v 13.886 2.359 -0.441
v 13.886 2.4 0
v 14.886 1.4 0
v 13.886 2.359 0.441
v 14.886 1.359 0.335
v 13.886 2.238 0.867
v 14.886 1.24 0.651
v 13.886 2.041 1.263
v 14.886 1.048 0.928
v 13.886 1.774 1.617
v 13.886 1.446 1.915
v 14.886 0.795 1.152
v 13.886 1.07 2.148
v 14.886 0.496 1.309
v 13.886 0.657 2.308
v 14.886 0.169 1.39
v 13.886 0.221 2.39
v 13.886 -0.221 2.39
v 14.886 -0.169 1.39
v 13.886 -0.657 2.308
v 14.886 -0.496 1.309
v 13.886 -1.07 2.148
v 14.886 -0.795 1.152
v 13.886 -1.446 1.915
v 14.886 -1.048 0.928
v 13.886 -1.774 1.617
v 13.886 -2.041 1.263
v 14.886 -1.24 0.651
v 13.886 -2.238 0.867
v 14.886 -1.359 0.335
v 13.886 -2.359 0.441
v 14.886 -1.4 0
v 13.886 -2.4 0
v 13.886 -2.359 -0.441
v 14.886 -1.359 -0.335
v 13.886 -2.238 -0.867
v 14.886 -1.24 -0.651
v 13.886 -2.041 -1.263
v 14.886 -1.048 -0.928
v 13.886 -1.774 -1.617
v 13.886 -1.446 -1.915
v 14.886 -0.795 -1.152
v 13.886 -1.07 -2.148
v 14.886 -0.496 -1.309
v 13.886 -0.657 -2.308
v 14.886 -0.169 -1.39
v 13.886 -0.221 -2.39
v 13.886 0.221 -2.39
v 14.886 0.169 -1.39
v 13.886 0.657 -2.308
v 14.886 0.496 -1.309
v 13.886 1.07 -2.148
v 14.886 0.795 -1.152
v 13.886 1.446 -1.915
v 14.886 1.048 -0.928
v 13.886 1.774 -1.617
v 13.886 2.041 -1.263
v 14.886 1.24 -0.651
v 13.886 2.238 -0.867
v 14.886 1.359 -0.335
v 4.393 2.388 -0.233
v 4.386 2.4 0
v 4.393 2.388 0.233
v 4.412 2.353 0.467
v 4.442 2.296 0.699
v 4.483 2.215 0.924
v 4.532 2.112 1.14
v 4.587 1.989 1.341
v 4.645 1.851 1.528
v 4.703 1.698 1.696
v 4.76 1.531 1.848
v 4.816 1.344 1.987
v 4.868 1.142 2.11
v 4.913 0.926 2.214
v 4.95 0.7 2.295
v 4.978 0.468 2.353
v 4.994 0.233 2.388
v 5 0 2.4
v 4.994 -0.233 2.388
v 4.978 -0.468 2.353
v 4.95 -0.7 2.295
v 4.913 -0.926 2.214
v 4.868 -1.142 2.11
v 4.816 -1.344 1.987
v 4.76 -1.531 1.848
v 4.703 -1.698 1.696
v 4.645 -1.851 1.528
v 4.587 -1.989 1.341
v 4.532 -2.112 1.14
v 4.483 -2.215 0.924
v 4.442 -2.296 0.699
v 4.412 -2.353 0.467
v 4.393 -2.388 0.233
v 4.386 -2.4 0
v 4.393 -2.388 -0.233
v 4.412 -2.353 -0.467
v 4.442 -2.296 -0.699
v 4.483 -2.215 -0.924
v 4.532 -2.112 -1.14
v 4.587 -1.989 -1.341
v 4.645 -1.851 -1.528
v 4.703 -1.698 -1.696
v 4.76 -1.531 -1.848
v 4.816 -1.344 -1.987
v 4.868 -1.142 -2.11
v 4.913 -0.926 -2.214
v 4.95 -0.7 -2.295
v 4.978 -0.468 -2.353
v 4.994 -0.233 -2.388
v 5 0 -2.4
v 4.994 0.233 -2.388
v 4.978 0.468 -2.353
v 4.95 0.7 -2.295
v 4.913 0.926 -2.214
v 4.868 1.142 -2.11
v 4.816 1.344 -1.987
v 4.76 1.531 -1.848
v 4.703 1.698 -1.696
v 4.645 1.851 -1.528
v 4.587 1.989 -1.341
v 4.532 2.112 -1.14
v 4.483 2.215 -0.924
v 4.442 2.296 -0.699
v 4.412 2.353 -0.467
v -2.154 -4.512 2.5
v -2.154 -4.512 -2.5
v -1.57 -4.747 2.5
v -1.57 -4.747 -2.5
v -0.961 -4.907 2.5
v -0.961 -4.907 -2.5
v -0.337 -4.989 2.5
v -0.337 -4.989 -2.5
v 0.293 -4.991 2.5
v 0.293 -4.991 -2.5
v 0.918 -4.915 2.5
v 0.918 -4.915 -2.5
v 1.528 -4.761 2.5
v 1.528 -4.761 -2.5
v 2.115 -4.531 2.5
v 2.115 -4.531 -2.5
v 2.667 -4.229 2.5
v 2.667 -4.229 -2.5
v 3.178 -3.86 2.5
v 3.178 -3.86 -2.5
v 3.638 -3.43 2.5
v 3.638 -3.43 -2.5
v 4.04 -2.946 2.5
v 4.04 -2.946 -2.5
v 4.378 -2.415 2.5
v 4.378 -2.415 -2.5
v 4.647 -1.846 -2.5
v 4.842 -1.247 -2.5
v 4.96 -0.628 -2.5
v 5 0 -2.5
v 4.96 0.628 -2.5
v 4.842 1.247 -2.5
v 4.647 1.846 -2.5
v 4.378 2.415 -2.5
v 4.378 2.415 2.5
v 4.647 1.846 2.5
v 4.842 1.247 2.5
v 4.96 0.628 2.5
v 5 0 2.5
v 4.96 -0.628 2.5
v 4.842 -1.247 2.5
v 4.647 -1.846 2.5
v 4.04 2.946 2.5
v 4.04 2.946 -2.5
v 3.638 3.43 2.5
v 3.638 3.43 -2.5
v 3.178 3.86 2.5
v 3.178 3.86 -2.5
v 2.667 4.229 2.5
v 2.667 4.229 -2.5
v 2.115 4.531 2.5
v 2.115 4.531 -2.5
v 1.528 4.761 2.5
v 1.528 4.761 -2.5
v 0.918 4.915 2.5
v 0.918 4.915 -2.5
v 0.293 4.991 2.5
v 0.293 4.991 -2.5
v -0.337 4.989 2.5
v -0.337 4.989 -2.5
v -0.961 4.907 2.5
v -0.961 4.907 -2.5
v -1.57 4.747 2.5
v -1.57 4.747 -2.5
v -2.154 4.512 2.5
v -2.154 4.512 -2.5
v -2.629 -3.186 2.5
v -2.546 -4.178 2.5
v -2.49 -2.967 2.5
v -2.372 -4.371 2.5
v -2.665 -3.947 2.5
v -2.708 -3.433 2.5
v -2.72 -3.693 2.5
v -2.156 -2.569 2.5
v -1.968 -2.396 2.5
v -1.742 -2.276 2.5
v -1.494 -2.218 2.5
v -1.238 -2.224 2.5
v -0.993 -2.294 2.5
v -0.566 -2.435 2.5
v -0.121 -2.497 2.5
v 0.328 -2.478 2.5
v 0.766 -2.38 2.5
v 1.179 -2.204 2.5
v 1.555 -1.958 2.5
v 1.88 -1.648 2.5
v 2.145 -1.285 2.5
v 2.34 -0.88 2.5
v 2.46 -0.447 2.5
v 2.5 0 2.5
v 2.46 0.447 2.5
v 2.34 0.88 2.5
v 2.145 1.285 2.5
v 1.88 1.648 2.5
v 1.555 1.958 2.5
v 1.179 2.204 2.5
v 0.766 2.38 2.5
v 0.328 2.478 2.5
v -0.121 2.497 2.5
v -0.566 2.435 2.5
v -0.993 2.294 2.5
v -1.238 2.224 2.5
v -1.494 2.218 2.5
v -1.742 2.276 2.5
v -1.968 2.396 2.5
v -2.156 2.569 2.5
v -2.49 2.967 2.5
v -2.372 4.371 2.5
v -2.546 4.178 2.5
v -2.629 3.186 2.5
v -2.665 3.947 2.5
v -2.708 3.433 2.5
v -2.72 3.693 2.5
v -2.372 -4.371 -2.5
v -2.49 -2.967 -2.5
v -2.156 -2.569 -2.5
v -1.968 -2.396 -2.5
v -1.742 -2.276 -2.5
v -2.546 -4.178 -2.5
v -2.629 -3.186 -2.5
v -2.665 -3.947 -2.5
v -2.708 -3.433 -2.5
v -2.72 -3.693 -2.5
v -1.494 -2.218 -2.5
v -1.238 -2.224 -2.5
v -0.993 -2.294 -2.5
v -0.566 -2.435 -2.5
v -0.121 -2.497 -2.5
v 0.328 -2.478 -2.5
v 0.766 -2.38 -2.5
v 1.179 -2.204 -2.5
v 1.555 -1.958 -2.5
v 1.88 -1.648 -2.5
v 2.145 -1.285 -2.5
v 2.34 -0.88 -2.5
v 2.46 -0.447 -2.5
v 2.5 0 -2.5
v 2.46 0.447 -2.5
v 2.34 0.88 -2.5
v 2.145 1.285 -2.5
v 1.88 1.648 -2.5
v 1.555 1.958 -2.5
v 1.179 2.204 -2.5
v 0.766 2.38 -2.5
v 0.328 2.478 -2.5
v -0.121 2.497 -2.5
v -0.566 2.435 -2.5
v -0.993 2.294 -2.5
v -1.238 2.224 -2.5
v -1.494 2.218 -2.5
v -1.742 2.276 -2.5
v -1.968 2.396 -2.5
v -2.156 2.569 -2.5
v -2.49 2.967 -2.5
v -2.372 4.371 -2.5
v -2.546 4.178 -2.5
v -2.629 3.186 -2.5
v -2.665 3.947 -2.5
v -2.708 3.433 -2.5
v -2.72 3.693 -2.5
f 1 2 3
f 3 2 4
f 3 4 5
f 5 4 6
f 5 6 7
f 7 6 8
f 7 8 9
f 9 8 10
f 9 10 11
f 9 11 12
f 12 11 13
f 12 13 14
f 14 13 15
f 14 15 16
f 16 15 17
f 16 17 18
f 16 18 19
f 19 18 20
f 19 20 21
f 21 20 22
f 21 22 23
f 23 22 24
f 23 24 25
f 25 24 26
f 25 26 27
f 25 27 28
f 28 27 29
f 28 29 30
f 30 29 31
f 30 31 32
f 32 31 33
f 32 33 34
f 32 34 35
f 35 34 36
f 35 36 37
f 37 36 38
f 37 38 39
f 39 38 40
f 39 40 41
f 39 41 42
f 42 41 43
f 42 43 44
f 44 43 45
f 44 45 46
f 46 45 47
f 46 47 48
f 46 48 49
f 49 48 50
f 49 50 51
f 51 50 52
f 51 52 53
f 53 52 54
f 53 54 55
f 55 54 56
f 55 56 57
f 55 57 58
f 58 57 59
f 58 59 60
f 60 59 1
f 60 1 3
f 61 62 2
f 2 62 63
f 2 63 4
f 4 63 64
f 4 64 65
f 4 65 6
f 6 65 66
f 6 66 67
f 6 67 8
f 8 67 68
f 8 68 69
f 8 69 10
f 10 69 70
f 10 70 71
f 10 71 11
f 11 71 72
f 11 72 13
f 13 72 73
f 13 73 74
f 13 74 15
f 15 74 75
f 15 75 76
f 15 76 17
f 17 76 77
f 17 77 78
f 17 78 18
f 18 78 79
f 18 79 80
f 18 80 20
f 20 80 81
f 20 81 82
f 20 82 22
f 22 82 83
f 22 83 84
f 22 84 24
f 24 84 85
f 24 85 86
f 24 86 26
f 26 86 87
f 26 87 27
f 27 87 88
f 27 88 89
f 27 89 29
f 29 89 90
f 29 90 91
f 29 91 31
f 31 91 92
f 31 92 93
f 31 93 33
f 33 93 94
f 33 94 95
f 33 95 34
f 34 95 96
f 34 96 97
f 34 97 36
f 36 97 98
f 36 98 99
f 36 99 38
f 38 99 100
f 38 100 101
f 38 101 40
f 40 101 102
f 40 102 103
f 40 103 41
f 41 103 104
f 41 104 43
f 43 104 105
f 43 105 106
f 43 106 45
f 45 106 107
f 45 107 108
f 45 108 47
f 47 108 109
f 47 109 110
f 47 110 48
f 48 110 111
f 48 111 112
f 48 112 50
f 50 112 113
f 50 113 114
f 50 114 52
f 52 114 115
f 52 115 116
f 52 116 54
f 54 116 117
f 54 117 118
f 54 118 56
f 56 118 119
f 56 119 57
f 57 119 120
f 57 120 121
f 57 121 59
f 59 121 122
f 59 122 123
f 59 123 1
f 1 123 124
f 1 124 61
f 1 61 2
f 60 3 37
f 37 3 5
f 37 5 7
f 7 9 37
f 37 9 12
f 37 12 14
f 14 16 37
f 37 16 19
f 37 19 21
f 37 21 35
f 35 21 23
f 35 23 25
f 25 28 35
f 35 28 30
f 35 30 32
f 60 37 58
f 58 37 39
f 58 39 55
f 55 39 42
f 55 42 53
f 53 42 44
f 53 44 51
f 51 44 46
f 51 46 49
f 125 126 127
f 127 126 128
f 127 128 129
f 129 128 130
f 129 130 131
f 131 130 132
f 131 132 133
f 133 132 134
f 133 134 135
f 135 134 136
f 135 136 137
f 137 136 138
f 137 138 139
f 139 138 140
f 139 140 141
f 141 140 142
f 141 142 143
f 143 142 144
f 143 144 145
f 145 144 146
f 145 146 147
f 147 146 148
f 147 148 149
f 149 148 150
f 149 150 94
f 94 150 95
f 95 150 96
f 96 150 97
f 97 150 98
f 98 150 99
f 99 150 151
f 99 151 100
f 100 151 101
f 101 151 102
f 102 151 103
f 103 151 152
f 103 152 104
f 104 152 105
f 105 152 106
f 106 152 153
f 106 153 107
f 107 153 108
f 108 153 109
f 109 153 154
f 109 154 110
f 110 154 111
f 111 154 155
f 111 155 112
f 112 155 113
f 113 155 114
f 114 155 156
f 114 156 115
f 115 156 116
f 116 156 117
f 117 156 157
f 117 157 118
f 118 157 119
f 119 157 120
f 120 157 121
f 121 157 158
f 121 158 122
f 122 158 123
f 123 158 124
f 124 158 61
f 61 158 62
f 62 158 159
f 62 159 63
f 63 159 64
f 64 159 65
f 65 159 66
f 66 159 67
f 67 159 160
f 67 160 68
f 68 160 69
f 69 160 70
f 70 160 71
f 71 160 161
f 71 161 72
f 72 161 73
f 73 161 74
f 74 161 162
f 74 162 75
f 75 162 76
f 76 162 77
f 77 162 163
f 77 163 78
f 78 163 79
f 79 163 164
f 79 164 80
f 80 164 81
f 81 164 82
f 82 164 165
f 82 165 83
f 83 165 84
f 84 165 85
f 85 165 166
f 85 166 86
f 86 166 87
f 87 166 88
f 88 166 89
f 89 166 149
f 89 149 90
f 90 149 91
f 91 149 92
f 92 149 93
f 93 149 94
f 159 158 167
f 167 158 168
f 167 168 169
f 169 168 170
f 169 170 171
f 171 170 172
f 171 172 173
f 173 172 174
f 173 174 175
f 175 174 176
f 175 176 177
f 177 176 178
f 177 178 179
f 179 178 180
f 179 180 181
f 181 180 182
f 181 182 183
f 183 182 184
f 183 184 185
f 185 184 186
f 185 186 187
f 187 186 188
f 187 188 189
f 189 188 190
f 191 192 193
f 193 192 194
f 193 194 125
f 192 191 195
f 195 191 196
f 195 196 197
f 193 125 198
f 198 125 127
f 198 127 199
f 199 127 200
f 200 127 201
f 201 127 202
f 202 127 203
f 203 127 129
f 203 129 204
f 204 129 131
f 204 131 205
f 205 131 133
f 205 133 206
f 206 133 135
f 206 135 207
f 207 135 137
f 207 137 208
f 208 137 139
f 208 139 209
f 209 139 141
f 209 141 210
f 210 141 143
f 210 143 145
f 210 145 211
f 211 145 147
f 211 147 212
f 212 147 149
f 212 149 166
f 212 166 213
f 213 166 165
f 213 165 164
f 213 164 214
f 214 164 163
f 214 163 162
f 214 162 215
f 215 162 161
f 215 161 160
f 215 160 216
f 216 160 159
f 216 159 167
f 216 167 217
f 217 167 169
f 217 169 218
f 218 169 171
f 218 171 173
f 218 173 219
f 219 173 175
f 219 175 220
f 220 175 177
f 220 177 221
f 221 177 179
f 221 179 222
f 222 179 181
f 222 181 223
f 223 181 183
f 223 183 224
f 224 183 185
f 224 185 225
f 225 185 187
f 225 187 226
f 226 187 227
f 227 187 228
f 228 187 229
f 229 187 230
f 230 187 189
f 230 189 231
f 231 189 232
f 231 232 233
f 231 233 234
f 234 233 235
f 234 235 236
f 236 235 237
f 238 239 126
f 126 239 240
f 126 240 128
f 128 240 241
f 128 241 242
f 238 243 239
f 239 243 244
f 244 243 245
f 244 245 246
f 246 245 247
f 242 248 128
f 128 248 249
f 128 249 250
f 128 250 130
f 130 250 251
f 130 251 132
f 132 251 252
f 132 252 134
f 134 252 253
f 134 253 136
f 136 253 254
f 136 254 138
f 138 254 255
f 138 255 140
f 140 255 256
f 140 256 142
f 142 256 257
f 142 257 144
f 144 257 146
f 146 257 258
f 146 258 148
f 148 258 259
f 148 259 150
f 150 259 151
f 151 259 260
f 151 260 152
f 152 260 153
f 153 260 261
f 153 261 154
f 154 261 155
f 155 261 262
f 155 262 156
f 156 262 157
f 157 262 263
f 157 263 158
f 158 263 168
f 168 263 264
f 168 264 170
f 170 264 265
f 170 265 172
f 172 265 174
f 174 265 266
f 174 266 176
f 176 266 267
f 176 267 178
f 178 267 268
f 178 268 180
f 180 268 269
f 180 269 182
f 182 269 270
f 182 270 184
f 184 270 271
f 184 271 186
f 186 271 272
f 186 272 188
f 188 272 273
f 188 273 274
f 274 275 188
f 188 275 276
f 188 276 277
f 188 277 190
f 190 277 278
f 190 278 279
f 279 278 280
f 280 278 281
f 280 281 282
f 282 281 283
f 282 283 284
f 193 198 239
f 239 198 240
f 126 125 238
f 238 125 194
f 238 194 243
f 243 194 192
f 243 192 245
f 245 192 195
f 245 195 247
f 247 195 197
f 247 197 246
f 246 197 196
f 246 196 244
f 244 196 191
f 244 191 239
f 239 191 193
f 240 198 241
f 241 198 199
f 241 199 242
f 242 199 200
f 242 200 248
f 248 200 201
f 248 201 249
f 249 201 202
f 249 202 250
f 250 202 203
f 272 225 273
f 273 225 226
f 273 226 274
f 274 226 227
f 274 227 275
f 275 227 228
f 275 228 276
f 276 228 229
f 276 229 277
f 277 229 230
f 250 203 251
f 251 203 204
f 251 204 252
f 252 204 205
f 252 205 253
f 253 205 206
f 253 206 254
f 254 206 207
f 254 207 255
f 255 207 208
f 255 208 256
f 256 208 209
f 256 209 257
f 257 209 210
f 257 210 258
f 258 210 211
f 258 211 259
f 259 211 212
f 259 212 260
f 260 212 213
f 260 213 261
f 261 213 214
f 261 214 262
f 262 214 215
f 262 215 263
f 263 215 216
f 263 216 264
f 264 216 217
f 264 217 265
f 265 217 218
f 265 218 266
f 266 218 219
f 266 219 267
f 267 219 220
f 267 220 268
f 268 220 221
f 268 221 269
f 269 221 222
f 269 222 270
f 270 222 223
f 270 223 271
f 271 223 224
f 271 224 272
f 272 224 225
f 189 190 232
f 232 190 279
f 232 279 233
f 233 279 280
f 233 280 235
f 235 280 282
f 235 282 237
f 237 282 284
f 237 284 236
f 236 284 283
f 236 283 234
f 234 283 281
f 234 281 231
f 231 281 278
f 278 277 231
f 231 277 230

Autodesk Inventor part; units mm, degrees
ref_plane "YZ Plane" through (0, 0, 0) normal (1, 0, 0) x (0, 1, 0)
ref_plane "XZ Plane" through (0, 0, 0) normal (0, 1, 0) x (-1, 0, 0)
ref_plane "XY Plane" through (0, 0, 0) normal (0, 0, 1) x (1, 0, 0)
sketch "Sketch1" plane through (0, 0, 0) normal (0, 0, 1) x (1, 0, 0)
  circle A0 centre (0, 0) radius 5
  circle A1 centre (0, 0) radius 2.5
  line L0 (0, 0) -> (-5, 0) construction
  line L1 (0, 0) -> (-3.213938, 3.830222)
  line L2 (0, 0) -> (-3.213938, -3.830222)
  line L3 (4.386342, 2.4) -> (14.386342, 2.4)
  line L4 (14.386342, 2.4) -> (14.386342, -2.4)
  line L5 (14.386342, -2.4) -> (4.386342, -2.4)
  line L6 (4.386342, -2.4) -> (4.386342, 2.4)
  point P0 (-1.606969, 1.915111)
  point P1 (-1.606969, -1.915111)
  dimension "d0" = 10
  dimension "d1" = 5
  dimension "d2" = 50
  dimension "d3" = 50
  dimension "d4" = 4.8
  dimension "d5" = 10
extrude "Extrusion1" add sketch "Sketch1" along normal mid plane 5 contours A0 L6 | L6 A0 L2 A1 L1
sketch "Sketch2" plane through (0, 0, 0) normal (0, 0, 1) x (1, 0, 0)
  arc A0 (-3.213938, -3.830222) -> (-3.213938, 3.830222) centre (0, 0) ccw construction
  line L0 (4.386342, 2.4) -> (14.886342, 2.4)
  line L1 (14.886342, 2.4) -> (14.886342, -2.4)
  line L2 (14.886342, -2.4) -> (4.386342, -2.4)
  line L3 (4.386342, -2.4) -> (4.386342, 2.4)
  line L4 (4.386342, 0) -> (14.886342, 0)
  dimension "d8" = 4.8
  dimension "d9" = 10.5
revolve "Revolution1" add sketch "Sketch2" angle 360 about axis through (4.386342, 0, 0) along (1, 0, 0) contours L0 L1 L4 L3
chamfer "Chamfer1" distance 1 angle 45 1 edges at (14.8863, -2.4, 0)
fillet "Fillet1" radius 1 4 edges at (-1.607, 1.9151, 0) (-3.2139, 3.8302, 0) (-1.607, -1.9151, 0) (-3.2139, -3.8302, 0)
properties part number "joint_part_black_2"
